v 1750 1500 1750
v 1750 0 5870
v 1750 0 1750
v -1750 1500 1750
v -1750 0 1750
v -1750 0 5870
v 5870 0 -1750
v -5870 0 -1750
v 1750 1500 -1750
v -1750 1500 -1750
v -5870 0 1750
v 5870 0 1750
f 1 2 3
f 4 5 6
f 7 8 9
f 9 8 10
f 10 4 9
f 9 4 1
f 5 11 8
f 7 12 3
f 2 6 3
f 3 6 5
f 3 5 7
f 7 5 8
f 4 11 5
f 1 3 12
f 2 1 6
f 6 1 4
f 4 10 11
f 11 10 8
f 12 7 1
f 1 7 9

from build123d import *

# Parameters (mm, degrees)
SKETCH1_W           = 3500
SKETCH1_H           = 3500
BOSS_EXTRUDE1_DEPTH = 1500
SKETCH1_5_W         = 3500
SKETCH1_5_H         = 4120
SKETCH1_5_W_2       = 4120
SKETCH1_5_H_2       = 3500
BOSS_EXTRUDE2_DEPTH = 1500
CUT_EXTRUDE1_DEPTH  = 9736.055212992
CUT_EXTRUDE2_DEPTH  = 7327.752350121
CUT_EXTRUDE4_DEPTH  = 7327.752350121


with BuildPart() as part:
    # Sketch1 → Boss-Extrude1 (new body)
    with BuildSketch(Plane(origin=(0, 0, 0), x_dir=(1, 0, 0), z_dir=(0, 1, 0))):
        Rectangle(SKETCH1_W, SKETCH1_H)
    extrude(amount=BOSS_EXTRUDE1_DEPTH)

    # Sketch1_5 → Boss-Extrude2 (add)
    with BuildSketch(Plane(origin=(0, 0, 0), x_dir=(1, 0, 0), z_dir=(0, 1, 0))):
        with Locations((0, -3810)):
            Rectangle(SKETCH1_5_W, SKETCH1_5_H)
        with Locations((-3810, 0)):
            Rectangle(SKETCH1_5_W_2, SKETCH1_5_H_2)
        with Locations((3810, 0)):
            Rectangle(SKETCH1_5_W_2, SKETCH1_5_H_2)
    extrude(amount=BOSS_EXTRUDE2_DEPTH)

    # Sketch2 → Cut-Extrude1 (cut, through all)
    with BuildSketch(Plane(origin=(1750, 0, 0), x_dir=(0, 0, -1), z_dir=(1, 0, 0))):
        Polygon((-1750, 1500), (-5870, 0), (-5870, 1500), align=None)
    extrude(amount=-CUT_EXTRUDE1_DEPTH, mode=Mode.SUBTRACT)

    # Sketch3 → Cut-Extrude2 (cut, through all)
    with BuildSketch(Plane.XY.offset(1750)):
        Polygon((-5870, 0), (-1750, 1500), (-5870, 1500), align=None)
    extrude(amount=-CUT_EXTRUDE2_DEPTH, mode=Mode.SUBTRACT)

    # Sketch4 → Cut-Extrude4 (cut, through all)
    with BuildSketch(Plane.XY.offset(1750)):
        Polygon((1750, 1500), (5870, 0), (5870, 1500), align=None)
    extrude(amount=-CUT_EXTRUDE4_DEPTH, mode=Mode.SUBTRACT)


solid = part.part
